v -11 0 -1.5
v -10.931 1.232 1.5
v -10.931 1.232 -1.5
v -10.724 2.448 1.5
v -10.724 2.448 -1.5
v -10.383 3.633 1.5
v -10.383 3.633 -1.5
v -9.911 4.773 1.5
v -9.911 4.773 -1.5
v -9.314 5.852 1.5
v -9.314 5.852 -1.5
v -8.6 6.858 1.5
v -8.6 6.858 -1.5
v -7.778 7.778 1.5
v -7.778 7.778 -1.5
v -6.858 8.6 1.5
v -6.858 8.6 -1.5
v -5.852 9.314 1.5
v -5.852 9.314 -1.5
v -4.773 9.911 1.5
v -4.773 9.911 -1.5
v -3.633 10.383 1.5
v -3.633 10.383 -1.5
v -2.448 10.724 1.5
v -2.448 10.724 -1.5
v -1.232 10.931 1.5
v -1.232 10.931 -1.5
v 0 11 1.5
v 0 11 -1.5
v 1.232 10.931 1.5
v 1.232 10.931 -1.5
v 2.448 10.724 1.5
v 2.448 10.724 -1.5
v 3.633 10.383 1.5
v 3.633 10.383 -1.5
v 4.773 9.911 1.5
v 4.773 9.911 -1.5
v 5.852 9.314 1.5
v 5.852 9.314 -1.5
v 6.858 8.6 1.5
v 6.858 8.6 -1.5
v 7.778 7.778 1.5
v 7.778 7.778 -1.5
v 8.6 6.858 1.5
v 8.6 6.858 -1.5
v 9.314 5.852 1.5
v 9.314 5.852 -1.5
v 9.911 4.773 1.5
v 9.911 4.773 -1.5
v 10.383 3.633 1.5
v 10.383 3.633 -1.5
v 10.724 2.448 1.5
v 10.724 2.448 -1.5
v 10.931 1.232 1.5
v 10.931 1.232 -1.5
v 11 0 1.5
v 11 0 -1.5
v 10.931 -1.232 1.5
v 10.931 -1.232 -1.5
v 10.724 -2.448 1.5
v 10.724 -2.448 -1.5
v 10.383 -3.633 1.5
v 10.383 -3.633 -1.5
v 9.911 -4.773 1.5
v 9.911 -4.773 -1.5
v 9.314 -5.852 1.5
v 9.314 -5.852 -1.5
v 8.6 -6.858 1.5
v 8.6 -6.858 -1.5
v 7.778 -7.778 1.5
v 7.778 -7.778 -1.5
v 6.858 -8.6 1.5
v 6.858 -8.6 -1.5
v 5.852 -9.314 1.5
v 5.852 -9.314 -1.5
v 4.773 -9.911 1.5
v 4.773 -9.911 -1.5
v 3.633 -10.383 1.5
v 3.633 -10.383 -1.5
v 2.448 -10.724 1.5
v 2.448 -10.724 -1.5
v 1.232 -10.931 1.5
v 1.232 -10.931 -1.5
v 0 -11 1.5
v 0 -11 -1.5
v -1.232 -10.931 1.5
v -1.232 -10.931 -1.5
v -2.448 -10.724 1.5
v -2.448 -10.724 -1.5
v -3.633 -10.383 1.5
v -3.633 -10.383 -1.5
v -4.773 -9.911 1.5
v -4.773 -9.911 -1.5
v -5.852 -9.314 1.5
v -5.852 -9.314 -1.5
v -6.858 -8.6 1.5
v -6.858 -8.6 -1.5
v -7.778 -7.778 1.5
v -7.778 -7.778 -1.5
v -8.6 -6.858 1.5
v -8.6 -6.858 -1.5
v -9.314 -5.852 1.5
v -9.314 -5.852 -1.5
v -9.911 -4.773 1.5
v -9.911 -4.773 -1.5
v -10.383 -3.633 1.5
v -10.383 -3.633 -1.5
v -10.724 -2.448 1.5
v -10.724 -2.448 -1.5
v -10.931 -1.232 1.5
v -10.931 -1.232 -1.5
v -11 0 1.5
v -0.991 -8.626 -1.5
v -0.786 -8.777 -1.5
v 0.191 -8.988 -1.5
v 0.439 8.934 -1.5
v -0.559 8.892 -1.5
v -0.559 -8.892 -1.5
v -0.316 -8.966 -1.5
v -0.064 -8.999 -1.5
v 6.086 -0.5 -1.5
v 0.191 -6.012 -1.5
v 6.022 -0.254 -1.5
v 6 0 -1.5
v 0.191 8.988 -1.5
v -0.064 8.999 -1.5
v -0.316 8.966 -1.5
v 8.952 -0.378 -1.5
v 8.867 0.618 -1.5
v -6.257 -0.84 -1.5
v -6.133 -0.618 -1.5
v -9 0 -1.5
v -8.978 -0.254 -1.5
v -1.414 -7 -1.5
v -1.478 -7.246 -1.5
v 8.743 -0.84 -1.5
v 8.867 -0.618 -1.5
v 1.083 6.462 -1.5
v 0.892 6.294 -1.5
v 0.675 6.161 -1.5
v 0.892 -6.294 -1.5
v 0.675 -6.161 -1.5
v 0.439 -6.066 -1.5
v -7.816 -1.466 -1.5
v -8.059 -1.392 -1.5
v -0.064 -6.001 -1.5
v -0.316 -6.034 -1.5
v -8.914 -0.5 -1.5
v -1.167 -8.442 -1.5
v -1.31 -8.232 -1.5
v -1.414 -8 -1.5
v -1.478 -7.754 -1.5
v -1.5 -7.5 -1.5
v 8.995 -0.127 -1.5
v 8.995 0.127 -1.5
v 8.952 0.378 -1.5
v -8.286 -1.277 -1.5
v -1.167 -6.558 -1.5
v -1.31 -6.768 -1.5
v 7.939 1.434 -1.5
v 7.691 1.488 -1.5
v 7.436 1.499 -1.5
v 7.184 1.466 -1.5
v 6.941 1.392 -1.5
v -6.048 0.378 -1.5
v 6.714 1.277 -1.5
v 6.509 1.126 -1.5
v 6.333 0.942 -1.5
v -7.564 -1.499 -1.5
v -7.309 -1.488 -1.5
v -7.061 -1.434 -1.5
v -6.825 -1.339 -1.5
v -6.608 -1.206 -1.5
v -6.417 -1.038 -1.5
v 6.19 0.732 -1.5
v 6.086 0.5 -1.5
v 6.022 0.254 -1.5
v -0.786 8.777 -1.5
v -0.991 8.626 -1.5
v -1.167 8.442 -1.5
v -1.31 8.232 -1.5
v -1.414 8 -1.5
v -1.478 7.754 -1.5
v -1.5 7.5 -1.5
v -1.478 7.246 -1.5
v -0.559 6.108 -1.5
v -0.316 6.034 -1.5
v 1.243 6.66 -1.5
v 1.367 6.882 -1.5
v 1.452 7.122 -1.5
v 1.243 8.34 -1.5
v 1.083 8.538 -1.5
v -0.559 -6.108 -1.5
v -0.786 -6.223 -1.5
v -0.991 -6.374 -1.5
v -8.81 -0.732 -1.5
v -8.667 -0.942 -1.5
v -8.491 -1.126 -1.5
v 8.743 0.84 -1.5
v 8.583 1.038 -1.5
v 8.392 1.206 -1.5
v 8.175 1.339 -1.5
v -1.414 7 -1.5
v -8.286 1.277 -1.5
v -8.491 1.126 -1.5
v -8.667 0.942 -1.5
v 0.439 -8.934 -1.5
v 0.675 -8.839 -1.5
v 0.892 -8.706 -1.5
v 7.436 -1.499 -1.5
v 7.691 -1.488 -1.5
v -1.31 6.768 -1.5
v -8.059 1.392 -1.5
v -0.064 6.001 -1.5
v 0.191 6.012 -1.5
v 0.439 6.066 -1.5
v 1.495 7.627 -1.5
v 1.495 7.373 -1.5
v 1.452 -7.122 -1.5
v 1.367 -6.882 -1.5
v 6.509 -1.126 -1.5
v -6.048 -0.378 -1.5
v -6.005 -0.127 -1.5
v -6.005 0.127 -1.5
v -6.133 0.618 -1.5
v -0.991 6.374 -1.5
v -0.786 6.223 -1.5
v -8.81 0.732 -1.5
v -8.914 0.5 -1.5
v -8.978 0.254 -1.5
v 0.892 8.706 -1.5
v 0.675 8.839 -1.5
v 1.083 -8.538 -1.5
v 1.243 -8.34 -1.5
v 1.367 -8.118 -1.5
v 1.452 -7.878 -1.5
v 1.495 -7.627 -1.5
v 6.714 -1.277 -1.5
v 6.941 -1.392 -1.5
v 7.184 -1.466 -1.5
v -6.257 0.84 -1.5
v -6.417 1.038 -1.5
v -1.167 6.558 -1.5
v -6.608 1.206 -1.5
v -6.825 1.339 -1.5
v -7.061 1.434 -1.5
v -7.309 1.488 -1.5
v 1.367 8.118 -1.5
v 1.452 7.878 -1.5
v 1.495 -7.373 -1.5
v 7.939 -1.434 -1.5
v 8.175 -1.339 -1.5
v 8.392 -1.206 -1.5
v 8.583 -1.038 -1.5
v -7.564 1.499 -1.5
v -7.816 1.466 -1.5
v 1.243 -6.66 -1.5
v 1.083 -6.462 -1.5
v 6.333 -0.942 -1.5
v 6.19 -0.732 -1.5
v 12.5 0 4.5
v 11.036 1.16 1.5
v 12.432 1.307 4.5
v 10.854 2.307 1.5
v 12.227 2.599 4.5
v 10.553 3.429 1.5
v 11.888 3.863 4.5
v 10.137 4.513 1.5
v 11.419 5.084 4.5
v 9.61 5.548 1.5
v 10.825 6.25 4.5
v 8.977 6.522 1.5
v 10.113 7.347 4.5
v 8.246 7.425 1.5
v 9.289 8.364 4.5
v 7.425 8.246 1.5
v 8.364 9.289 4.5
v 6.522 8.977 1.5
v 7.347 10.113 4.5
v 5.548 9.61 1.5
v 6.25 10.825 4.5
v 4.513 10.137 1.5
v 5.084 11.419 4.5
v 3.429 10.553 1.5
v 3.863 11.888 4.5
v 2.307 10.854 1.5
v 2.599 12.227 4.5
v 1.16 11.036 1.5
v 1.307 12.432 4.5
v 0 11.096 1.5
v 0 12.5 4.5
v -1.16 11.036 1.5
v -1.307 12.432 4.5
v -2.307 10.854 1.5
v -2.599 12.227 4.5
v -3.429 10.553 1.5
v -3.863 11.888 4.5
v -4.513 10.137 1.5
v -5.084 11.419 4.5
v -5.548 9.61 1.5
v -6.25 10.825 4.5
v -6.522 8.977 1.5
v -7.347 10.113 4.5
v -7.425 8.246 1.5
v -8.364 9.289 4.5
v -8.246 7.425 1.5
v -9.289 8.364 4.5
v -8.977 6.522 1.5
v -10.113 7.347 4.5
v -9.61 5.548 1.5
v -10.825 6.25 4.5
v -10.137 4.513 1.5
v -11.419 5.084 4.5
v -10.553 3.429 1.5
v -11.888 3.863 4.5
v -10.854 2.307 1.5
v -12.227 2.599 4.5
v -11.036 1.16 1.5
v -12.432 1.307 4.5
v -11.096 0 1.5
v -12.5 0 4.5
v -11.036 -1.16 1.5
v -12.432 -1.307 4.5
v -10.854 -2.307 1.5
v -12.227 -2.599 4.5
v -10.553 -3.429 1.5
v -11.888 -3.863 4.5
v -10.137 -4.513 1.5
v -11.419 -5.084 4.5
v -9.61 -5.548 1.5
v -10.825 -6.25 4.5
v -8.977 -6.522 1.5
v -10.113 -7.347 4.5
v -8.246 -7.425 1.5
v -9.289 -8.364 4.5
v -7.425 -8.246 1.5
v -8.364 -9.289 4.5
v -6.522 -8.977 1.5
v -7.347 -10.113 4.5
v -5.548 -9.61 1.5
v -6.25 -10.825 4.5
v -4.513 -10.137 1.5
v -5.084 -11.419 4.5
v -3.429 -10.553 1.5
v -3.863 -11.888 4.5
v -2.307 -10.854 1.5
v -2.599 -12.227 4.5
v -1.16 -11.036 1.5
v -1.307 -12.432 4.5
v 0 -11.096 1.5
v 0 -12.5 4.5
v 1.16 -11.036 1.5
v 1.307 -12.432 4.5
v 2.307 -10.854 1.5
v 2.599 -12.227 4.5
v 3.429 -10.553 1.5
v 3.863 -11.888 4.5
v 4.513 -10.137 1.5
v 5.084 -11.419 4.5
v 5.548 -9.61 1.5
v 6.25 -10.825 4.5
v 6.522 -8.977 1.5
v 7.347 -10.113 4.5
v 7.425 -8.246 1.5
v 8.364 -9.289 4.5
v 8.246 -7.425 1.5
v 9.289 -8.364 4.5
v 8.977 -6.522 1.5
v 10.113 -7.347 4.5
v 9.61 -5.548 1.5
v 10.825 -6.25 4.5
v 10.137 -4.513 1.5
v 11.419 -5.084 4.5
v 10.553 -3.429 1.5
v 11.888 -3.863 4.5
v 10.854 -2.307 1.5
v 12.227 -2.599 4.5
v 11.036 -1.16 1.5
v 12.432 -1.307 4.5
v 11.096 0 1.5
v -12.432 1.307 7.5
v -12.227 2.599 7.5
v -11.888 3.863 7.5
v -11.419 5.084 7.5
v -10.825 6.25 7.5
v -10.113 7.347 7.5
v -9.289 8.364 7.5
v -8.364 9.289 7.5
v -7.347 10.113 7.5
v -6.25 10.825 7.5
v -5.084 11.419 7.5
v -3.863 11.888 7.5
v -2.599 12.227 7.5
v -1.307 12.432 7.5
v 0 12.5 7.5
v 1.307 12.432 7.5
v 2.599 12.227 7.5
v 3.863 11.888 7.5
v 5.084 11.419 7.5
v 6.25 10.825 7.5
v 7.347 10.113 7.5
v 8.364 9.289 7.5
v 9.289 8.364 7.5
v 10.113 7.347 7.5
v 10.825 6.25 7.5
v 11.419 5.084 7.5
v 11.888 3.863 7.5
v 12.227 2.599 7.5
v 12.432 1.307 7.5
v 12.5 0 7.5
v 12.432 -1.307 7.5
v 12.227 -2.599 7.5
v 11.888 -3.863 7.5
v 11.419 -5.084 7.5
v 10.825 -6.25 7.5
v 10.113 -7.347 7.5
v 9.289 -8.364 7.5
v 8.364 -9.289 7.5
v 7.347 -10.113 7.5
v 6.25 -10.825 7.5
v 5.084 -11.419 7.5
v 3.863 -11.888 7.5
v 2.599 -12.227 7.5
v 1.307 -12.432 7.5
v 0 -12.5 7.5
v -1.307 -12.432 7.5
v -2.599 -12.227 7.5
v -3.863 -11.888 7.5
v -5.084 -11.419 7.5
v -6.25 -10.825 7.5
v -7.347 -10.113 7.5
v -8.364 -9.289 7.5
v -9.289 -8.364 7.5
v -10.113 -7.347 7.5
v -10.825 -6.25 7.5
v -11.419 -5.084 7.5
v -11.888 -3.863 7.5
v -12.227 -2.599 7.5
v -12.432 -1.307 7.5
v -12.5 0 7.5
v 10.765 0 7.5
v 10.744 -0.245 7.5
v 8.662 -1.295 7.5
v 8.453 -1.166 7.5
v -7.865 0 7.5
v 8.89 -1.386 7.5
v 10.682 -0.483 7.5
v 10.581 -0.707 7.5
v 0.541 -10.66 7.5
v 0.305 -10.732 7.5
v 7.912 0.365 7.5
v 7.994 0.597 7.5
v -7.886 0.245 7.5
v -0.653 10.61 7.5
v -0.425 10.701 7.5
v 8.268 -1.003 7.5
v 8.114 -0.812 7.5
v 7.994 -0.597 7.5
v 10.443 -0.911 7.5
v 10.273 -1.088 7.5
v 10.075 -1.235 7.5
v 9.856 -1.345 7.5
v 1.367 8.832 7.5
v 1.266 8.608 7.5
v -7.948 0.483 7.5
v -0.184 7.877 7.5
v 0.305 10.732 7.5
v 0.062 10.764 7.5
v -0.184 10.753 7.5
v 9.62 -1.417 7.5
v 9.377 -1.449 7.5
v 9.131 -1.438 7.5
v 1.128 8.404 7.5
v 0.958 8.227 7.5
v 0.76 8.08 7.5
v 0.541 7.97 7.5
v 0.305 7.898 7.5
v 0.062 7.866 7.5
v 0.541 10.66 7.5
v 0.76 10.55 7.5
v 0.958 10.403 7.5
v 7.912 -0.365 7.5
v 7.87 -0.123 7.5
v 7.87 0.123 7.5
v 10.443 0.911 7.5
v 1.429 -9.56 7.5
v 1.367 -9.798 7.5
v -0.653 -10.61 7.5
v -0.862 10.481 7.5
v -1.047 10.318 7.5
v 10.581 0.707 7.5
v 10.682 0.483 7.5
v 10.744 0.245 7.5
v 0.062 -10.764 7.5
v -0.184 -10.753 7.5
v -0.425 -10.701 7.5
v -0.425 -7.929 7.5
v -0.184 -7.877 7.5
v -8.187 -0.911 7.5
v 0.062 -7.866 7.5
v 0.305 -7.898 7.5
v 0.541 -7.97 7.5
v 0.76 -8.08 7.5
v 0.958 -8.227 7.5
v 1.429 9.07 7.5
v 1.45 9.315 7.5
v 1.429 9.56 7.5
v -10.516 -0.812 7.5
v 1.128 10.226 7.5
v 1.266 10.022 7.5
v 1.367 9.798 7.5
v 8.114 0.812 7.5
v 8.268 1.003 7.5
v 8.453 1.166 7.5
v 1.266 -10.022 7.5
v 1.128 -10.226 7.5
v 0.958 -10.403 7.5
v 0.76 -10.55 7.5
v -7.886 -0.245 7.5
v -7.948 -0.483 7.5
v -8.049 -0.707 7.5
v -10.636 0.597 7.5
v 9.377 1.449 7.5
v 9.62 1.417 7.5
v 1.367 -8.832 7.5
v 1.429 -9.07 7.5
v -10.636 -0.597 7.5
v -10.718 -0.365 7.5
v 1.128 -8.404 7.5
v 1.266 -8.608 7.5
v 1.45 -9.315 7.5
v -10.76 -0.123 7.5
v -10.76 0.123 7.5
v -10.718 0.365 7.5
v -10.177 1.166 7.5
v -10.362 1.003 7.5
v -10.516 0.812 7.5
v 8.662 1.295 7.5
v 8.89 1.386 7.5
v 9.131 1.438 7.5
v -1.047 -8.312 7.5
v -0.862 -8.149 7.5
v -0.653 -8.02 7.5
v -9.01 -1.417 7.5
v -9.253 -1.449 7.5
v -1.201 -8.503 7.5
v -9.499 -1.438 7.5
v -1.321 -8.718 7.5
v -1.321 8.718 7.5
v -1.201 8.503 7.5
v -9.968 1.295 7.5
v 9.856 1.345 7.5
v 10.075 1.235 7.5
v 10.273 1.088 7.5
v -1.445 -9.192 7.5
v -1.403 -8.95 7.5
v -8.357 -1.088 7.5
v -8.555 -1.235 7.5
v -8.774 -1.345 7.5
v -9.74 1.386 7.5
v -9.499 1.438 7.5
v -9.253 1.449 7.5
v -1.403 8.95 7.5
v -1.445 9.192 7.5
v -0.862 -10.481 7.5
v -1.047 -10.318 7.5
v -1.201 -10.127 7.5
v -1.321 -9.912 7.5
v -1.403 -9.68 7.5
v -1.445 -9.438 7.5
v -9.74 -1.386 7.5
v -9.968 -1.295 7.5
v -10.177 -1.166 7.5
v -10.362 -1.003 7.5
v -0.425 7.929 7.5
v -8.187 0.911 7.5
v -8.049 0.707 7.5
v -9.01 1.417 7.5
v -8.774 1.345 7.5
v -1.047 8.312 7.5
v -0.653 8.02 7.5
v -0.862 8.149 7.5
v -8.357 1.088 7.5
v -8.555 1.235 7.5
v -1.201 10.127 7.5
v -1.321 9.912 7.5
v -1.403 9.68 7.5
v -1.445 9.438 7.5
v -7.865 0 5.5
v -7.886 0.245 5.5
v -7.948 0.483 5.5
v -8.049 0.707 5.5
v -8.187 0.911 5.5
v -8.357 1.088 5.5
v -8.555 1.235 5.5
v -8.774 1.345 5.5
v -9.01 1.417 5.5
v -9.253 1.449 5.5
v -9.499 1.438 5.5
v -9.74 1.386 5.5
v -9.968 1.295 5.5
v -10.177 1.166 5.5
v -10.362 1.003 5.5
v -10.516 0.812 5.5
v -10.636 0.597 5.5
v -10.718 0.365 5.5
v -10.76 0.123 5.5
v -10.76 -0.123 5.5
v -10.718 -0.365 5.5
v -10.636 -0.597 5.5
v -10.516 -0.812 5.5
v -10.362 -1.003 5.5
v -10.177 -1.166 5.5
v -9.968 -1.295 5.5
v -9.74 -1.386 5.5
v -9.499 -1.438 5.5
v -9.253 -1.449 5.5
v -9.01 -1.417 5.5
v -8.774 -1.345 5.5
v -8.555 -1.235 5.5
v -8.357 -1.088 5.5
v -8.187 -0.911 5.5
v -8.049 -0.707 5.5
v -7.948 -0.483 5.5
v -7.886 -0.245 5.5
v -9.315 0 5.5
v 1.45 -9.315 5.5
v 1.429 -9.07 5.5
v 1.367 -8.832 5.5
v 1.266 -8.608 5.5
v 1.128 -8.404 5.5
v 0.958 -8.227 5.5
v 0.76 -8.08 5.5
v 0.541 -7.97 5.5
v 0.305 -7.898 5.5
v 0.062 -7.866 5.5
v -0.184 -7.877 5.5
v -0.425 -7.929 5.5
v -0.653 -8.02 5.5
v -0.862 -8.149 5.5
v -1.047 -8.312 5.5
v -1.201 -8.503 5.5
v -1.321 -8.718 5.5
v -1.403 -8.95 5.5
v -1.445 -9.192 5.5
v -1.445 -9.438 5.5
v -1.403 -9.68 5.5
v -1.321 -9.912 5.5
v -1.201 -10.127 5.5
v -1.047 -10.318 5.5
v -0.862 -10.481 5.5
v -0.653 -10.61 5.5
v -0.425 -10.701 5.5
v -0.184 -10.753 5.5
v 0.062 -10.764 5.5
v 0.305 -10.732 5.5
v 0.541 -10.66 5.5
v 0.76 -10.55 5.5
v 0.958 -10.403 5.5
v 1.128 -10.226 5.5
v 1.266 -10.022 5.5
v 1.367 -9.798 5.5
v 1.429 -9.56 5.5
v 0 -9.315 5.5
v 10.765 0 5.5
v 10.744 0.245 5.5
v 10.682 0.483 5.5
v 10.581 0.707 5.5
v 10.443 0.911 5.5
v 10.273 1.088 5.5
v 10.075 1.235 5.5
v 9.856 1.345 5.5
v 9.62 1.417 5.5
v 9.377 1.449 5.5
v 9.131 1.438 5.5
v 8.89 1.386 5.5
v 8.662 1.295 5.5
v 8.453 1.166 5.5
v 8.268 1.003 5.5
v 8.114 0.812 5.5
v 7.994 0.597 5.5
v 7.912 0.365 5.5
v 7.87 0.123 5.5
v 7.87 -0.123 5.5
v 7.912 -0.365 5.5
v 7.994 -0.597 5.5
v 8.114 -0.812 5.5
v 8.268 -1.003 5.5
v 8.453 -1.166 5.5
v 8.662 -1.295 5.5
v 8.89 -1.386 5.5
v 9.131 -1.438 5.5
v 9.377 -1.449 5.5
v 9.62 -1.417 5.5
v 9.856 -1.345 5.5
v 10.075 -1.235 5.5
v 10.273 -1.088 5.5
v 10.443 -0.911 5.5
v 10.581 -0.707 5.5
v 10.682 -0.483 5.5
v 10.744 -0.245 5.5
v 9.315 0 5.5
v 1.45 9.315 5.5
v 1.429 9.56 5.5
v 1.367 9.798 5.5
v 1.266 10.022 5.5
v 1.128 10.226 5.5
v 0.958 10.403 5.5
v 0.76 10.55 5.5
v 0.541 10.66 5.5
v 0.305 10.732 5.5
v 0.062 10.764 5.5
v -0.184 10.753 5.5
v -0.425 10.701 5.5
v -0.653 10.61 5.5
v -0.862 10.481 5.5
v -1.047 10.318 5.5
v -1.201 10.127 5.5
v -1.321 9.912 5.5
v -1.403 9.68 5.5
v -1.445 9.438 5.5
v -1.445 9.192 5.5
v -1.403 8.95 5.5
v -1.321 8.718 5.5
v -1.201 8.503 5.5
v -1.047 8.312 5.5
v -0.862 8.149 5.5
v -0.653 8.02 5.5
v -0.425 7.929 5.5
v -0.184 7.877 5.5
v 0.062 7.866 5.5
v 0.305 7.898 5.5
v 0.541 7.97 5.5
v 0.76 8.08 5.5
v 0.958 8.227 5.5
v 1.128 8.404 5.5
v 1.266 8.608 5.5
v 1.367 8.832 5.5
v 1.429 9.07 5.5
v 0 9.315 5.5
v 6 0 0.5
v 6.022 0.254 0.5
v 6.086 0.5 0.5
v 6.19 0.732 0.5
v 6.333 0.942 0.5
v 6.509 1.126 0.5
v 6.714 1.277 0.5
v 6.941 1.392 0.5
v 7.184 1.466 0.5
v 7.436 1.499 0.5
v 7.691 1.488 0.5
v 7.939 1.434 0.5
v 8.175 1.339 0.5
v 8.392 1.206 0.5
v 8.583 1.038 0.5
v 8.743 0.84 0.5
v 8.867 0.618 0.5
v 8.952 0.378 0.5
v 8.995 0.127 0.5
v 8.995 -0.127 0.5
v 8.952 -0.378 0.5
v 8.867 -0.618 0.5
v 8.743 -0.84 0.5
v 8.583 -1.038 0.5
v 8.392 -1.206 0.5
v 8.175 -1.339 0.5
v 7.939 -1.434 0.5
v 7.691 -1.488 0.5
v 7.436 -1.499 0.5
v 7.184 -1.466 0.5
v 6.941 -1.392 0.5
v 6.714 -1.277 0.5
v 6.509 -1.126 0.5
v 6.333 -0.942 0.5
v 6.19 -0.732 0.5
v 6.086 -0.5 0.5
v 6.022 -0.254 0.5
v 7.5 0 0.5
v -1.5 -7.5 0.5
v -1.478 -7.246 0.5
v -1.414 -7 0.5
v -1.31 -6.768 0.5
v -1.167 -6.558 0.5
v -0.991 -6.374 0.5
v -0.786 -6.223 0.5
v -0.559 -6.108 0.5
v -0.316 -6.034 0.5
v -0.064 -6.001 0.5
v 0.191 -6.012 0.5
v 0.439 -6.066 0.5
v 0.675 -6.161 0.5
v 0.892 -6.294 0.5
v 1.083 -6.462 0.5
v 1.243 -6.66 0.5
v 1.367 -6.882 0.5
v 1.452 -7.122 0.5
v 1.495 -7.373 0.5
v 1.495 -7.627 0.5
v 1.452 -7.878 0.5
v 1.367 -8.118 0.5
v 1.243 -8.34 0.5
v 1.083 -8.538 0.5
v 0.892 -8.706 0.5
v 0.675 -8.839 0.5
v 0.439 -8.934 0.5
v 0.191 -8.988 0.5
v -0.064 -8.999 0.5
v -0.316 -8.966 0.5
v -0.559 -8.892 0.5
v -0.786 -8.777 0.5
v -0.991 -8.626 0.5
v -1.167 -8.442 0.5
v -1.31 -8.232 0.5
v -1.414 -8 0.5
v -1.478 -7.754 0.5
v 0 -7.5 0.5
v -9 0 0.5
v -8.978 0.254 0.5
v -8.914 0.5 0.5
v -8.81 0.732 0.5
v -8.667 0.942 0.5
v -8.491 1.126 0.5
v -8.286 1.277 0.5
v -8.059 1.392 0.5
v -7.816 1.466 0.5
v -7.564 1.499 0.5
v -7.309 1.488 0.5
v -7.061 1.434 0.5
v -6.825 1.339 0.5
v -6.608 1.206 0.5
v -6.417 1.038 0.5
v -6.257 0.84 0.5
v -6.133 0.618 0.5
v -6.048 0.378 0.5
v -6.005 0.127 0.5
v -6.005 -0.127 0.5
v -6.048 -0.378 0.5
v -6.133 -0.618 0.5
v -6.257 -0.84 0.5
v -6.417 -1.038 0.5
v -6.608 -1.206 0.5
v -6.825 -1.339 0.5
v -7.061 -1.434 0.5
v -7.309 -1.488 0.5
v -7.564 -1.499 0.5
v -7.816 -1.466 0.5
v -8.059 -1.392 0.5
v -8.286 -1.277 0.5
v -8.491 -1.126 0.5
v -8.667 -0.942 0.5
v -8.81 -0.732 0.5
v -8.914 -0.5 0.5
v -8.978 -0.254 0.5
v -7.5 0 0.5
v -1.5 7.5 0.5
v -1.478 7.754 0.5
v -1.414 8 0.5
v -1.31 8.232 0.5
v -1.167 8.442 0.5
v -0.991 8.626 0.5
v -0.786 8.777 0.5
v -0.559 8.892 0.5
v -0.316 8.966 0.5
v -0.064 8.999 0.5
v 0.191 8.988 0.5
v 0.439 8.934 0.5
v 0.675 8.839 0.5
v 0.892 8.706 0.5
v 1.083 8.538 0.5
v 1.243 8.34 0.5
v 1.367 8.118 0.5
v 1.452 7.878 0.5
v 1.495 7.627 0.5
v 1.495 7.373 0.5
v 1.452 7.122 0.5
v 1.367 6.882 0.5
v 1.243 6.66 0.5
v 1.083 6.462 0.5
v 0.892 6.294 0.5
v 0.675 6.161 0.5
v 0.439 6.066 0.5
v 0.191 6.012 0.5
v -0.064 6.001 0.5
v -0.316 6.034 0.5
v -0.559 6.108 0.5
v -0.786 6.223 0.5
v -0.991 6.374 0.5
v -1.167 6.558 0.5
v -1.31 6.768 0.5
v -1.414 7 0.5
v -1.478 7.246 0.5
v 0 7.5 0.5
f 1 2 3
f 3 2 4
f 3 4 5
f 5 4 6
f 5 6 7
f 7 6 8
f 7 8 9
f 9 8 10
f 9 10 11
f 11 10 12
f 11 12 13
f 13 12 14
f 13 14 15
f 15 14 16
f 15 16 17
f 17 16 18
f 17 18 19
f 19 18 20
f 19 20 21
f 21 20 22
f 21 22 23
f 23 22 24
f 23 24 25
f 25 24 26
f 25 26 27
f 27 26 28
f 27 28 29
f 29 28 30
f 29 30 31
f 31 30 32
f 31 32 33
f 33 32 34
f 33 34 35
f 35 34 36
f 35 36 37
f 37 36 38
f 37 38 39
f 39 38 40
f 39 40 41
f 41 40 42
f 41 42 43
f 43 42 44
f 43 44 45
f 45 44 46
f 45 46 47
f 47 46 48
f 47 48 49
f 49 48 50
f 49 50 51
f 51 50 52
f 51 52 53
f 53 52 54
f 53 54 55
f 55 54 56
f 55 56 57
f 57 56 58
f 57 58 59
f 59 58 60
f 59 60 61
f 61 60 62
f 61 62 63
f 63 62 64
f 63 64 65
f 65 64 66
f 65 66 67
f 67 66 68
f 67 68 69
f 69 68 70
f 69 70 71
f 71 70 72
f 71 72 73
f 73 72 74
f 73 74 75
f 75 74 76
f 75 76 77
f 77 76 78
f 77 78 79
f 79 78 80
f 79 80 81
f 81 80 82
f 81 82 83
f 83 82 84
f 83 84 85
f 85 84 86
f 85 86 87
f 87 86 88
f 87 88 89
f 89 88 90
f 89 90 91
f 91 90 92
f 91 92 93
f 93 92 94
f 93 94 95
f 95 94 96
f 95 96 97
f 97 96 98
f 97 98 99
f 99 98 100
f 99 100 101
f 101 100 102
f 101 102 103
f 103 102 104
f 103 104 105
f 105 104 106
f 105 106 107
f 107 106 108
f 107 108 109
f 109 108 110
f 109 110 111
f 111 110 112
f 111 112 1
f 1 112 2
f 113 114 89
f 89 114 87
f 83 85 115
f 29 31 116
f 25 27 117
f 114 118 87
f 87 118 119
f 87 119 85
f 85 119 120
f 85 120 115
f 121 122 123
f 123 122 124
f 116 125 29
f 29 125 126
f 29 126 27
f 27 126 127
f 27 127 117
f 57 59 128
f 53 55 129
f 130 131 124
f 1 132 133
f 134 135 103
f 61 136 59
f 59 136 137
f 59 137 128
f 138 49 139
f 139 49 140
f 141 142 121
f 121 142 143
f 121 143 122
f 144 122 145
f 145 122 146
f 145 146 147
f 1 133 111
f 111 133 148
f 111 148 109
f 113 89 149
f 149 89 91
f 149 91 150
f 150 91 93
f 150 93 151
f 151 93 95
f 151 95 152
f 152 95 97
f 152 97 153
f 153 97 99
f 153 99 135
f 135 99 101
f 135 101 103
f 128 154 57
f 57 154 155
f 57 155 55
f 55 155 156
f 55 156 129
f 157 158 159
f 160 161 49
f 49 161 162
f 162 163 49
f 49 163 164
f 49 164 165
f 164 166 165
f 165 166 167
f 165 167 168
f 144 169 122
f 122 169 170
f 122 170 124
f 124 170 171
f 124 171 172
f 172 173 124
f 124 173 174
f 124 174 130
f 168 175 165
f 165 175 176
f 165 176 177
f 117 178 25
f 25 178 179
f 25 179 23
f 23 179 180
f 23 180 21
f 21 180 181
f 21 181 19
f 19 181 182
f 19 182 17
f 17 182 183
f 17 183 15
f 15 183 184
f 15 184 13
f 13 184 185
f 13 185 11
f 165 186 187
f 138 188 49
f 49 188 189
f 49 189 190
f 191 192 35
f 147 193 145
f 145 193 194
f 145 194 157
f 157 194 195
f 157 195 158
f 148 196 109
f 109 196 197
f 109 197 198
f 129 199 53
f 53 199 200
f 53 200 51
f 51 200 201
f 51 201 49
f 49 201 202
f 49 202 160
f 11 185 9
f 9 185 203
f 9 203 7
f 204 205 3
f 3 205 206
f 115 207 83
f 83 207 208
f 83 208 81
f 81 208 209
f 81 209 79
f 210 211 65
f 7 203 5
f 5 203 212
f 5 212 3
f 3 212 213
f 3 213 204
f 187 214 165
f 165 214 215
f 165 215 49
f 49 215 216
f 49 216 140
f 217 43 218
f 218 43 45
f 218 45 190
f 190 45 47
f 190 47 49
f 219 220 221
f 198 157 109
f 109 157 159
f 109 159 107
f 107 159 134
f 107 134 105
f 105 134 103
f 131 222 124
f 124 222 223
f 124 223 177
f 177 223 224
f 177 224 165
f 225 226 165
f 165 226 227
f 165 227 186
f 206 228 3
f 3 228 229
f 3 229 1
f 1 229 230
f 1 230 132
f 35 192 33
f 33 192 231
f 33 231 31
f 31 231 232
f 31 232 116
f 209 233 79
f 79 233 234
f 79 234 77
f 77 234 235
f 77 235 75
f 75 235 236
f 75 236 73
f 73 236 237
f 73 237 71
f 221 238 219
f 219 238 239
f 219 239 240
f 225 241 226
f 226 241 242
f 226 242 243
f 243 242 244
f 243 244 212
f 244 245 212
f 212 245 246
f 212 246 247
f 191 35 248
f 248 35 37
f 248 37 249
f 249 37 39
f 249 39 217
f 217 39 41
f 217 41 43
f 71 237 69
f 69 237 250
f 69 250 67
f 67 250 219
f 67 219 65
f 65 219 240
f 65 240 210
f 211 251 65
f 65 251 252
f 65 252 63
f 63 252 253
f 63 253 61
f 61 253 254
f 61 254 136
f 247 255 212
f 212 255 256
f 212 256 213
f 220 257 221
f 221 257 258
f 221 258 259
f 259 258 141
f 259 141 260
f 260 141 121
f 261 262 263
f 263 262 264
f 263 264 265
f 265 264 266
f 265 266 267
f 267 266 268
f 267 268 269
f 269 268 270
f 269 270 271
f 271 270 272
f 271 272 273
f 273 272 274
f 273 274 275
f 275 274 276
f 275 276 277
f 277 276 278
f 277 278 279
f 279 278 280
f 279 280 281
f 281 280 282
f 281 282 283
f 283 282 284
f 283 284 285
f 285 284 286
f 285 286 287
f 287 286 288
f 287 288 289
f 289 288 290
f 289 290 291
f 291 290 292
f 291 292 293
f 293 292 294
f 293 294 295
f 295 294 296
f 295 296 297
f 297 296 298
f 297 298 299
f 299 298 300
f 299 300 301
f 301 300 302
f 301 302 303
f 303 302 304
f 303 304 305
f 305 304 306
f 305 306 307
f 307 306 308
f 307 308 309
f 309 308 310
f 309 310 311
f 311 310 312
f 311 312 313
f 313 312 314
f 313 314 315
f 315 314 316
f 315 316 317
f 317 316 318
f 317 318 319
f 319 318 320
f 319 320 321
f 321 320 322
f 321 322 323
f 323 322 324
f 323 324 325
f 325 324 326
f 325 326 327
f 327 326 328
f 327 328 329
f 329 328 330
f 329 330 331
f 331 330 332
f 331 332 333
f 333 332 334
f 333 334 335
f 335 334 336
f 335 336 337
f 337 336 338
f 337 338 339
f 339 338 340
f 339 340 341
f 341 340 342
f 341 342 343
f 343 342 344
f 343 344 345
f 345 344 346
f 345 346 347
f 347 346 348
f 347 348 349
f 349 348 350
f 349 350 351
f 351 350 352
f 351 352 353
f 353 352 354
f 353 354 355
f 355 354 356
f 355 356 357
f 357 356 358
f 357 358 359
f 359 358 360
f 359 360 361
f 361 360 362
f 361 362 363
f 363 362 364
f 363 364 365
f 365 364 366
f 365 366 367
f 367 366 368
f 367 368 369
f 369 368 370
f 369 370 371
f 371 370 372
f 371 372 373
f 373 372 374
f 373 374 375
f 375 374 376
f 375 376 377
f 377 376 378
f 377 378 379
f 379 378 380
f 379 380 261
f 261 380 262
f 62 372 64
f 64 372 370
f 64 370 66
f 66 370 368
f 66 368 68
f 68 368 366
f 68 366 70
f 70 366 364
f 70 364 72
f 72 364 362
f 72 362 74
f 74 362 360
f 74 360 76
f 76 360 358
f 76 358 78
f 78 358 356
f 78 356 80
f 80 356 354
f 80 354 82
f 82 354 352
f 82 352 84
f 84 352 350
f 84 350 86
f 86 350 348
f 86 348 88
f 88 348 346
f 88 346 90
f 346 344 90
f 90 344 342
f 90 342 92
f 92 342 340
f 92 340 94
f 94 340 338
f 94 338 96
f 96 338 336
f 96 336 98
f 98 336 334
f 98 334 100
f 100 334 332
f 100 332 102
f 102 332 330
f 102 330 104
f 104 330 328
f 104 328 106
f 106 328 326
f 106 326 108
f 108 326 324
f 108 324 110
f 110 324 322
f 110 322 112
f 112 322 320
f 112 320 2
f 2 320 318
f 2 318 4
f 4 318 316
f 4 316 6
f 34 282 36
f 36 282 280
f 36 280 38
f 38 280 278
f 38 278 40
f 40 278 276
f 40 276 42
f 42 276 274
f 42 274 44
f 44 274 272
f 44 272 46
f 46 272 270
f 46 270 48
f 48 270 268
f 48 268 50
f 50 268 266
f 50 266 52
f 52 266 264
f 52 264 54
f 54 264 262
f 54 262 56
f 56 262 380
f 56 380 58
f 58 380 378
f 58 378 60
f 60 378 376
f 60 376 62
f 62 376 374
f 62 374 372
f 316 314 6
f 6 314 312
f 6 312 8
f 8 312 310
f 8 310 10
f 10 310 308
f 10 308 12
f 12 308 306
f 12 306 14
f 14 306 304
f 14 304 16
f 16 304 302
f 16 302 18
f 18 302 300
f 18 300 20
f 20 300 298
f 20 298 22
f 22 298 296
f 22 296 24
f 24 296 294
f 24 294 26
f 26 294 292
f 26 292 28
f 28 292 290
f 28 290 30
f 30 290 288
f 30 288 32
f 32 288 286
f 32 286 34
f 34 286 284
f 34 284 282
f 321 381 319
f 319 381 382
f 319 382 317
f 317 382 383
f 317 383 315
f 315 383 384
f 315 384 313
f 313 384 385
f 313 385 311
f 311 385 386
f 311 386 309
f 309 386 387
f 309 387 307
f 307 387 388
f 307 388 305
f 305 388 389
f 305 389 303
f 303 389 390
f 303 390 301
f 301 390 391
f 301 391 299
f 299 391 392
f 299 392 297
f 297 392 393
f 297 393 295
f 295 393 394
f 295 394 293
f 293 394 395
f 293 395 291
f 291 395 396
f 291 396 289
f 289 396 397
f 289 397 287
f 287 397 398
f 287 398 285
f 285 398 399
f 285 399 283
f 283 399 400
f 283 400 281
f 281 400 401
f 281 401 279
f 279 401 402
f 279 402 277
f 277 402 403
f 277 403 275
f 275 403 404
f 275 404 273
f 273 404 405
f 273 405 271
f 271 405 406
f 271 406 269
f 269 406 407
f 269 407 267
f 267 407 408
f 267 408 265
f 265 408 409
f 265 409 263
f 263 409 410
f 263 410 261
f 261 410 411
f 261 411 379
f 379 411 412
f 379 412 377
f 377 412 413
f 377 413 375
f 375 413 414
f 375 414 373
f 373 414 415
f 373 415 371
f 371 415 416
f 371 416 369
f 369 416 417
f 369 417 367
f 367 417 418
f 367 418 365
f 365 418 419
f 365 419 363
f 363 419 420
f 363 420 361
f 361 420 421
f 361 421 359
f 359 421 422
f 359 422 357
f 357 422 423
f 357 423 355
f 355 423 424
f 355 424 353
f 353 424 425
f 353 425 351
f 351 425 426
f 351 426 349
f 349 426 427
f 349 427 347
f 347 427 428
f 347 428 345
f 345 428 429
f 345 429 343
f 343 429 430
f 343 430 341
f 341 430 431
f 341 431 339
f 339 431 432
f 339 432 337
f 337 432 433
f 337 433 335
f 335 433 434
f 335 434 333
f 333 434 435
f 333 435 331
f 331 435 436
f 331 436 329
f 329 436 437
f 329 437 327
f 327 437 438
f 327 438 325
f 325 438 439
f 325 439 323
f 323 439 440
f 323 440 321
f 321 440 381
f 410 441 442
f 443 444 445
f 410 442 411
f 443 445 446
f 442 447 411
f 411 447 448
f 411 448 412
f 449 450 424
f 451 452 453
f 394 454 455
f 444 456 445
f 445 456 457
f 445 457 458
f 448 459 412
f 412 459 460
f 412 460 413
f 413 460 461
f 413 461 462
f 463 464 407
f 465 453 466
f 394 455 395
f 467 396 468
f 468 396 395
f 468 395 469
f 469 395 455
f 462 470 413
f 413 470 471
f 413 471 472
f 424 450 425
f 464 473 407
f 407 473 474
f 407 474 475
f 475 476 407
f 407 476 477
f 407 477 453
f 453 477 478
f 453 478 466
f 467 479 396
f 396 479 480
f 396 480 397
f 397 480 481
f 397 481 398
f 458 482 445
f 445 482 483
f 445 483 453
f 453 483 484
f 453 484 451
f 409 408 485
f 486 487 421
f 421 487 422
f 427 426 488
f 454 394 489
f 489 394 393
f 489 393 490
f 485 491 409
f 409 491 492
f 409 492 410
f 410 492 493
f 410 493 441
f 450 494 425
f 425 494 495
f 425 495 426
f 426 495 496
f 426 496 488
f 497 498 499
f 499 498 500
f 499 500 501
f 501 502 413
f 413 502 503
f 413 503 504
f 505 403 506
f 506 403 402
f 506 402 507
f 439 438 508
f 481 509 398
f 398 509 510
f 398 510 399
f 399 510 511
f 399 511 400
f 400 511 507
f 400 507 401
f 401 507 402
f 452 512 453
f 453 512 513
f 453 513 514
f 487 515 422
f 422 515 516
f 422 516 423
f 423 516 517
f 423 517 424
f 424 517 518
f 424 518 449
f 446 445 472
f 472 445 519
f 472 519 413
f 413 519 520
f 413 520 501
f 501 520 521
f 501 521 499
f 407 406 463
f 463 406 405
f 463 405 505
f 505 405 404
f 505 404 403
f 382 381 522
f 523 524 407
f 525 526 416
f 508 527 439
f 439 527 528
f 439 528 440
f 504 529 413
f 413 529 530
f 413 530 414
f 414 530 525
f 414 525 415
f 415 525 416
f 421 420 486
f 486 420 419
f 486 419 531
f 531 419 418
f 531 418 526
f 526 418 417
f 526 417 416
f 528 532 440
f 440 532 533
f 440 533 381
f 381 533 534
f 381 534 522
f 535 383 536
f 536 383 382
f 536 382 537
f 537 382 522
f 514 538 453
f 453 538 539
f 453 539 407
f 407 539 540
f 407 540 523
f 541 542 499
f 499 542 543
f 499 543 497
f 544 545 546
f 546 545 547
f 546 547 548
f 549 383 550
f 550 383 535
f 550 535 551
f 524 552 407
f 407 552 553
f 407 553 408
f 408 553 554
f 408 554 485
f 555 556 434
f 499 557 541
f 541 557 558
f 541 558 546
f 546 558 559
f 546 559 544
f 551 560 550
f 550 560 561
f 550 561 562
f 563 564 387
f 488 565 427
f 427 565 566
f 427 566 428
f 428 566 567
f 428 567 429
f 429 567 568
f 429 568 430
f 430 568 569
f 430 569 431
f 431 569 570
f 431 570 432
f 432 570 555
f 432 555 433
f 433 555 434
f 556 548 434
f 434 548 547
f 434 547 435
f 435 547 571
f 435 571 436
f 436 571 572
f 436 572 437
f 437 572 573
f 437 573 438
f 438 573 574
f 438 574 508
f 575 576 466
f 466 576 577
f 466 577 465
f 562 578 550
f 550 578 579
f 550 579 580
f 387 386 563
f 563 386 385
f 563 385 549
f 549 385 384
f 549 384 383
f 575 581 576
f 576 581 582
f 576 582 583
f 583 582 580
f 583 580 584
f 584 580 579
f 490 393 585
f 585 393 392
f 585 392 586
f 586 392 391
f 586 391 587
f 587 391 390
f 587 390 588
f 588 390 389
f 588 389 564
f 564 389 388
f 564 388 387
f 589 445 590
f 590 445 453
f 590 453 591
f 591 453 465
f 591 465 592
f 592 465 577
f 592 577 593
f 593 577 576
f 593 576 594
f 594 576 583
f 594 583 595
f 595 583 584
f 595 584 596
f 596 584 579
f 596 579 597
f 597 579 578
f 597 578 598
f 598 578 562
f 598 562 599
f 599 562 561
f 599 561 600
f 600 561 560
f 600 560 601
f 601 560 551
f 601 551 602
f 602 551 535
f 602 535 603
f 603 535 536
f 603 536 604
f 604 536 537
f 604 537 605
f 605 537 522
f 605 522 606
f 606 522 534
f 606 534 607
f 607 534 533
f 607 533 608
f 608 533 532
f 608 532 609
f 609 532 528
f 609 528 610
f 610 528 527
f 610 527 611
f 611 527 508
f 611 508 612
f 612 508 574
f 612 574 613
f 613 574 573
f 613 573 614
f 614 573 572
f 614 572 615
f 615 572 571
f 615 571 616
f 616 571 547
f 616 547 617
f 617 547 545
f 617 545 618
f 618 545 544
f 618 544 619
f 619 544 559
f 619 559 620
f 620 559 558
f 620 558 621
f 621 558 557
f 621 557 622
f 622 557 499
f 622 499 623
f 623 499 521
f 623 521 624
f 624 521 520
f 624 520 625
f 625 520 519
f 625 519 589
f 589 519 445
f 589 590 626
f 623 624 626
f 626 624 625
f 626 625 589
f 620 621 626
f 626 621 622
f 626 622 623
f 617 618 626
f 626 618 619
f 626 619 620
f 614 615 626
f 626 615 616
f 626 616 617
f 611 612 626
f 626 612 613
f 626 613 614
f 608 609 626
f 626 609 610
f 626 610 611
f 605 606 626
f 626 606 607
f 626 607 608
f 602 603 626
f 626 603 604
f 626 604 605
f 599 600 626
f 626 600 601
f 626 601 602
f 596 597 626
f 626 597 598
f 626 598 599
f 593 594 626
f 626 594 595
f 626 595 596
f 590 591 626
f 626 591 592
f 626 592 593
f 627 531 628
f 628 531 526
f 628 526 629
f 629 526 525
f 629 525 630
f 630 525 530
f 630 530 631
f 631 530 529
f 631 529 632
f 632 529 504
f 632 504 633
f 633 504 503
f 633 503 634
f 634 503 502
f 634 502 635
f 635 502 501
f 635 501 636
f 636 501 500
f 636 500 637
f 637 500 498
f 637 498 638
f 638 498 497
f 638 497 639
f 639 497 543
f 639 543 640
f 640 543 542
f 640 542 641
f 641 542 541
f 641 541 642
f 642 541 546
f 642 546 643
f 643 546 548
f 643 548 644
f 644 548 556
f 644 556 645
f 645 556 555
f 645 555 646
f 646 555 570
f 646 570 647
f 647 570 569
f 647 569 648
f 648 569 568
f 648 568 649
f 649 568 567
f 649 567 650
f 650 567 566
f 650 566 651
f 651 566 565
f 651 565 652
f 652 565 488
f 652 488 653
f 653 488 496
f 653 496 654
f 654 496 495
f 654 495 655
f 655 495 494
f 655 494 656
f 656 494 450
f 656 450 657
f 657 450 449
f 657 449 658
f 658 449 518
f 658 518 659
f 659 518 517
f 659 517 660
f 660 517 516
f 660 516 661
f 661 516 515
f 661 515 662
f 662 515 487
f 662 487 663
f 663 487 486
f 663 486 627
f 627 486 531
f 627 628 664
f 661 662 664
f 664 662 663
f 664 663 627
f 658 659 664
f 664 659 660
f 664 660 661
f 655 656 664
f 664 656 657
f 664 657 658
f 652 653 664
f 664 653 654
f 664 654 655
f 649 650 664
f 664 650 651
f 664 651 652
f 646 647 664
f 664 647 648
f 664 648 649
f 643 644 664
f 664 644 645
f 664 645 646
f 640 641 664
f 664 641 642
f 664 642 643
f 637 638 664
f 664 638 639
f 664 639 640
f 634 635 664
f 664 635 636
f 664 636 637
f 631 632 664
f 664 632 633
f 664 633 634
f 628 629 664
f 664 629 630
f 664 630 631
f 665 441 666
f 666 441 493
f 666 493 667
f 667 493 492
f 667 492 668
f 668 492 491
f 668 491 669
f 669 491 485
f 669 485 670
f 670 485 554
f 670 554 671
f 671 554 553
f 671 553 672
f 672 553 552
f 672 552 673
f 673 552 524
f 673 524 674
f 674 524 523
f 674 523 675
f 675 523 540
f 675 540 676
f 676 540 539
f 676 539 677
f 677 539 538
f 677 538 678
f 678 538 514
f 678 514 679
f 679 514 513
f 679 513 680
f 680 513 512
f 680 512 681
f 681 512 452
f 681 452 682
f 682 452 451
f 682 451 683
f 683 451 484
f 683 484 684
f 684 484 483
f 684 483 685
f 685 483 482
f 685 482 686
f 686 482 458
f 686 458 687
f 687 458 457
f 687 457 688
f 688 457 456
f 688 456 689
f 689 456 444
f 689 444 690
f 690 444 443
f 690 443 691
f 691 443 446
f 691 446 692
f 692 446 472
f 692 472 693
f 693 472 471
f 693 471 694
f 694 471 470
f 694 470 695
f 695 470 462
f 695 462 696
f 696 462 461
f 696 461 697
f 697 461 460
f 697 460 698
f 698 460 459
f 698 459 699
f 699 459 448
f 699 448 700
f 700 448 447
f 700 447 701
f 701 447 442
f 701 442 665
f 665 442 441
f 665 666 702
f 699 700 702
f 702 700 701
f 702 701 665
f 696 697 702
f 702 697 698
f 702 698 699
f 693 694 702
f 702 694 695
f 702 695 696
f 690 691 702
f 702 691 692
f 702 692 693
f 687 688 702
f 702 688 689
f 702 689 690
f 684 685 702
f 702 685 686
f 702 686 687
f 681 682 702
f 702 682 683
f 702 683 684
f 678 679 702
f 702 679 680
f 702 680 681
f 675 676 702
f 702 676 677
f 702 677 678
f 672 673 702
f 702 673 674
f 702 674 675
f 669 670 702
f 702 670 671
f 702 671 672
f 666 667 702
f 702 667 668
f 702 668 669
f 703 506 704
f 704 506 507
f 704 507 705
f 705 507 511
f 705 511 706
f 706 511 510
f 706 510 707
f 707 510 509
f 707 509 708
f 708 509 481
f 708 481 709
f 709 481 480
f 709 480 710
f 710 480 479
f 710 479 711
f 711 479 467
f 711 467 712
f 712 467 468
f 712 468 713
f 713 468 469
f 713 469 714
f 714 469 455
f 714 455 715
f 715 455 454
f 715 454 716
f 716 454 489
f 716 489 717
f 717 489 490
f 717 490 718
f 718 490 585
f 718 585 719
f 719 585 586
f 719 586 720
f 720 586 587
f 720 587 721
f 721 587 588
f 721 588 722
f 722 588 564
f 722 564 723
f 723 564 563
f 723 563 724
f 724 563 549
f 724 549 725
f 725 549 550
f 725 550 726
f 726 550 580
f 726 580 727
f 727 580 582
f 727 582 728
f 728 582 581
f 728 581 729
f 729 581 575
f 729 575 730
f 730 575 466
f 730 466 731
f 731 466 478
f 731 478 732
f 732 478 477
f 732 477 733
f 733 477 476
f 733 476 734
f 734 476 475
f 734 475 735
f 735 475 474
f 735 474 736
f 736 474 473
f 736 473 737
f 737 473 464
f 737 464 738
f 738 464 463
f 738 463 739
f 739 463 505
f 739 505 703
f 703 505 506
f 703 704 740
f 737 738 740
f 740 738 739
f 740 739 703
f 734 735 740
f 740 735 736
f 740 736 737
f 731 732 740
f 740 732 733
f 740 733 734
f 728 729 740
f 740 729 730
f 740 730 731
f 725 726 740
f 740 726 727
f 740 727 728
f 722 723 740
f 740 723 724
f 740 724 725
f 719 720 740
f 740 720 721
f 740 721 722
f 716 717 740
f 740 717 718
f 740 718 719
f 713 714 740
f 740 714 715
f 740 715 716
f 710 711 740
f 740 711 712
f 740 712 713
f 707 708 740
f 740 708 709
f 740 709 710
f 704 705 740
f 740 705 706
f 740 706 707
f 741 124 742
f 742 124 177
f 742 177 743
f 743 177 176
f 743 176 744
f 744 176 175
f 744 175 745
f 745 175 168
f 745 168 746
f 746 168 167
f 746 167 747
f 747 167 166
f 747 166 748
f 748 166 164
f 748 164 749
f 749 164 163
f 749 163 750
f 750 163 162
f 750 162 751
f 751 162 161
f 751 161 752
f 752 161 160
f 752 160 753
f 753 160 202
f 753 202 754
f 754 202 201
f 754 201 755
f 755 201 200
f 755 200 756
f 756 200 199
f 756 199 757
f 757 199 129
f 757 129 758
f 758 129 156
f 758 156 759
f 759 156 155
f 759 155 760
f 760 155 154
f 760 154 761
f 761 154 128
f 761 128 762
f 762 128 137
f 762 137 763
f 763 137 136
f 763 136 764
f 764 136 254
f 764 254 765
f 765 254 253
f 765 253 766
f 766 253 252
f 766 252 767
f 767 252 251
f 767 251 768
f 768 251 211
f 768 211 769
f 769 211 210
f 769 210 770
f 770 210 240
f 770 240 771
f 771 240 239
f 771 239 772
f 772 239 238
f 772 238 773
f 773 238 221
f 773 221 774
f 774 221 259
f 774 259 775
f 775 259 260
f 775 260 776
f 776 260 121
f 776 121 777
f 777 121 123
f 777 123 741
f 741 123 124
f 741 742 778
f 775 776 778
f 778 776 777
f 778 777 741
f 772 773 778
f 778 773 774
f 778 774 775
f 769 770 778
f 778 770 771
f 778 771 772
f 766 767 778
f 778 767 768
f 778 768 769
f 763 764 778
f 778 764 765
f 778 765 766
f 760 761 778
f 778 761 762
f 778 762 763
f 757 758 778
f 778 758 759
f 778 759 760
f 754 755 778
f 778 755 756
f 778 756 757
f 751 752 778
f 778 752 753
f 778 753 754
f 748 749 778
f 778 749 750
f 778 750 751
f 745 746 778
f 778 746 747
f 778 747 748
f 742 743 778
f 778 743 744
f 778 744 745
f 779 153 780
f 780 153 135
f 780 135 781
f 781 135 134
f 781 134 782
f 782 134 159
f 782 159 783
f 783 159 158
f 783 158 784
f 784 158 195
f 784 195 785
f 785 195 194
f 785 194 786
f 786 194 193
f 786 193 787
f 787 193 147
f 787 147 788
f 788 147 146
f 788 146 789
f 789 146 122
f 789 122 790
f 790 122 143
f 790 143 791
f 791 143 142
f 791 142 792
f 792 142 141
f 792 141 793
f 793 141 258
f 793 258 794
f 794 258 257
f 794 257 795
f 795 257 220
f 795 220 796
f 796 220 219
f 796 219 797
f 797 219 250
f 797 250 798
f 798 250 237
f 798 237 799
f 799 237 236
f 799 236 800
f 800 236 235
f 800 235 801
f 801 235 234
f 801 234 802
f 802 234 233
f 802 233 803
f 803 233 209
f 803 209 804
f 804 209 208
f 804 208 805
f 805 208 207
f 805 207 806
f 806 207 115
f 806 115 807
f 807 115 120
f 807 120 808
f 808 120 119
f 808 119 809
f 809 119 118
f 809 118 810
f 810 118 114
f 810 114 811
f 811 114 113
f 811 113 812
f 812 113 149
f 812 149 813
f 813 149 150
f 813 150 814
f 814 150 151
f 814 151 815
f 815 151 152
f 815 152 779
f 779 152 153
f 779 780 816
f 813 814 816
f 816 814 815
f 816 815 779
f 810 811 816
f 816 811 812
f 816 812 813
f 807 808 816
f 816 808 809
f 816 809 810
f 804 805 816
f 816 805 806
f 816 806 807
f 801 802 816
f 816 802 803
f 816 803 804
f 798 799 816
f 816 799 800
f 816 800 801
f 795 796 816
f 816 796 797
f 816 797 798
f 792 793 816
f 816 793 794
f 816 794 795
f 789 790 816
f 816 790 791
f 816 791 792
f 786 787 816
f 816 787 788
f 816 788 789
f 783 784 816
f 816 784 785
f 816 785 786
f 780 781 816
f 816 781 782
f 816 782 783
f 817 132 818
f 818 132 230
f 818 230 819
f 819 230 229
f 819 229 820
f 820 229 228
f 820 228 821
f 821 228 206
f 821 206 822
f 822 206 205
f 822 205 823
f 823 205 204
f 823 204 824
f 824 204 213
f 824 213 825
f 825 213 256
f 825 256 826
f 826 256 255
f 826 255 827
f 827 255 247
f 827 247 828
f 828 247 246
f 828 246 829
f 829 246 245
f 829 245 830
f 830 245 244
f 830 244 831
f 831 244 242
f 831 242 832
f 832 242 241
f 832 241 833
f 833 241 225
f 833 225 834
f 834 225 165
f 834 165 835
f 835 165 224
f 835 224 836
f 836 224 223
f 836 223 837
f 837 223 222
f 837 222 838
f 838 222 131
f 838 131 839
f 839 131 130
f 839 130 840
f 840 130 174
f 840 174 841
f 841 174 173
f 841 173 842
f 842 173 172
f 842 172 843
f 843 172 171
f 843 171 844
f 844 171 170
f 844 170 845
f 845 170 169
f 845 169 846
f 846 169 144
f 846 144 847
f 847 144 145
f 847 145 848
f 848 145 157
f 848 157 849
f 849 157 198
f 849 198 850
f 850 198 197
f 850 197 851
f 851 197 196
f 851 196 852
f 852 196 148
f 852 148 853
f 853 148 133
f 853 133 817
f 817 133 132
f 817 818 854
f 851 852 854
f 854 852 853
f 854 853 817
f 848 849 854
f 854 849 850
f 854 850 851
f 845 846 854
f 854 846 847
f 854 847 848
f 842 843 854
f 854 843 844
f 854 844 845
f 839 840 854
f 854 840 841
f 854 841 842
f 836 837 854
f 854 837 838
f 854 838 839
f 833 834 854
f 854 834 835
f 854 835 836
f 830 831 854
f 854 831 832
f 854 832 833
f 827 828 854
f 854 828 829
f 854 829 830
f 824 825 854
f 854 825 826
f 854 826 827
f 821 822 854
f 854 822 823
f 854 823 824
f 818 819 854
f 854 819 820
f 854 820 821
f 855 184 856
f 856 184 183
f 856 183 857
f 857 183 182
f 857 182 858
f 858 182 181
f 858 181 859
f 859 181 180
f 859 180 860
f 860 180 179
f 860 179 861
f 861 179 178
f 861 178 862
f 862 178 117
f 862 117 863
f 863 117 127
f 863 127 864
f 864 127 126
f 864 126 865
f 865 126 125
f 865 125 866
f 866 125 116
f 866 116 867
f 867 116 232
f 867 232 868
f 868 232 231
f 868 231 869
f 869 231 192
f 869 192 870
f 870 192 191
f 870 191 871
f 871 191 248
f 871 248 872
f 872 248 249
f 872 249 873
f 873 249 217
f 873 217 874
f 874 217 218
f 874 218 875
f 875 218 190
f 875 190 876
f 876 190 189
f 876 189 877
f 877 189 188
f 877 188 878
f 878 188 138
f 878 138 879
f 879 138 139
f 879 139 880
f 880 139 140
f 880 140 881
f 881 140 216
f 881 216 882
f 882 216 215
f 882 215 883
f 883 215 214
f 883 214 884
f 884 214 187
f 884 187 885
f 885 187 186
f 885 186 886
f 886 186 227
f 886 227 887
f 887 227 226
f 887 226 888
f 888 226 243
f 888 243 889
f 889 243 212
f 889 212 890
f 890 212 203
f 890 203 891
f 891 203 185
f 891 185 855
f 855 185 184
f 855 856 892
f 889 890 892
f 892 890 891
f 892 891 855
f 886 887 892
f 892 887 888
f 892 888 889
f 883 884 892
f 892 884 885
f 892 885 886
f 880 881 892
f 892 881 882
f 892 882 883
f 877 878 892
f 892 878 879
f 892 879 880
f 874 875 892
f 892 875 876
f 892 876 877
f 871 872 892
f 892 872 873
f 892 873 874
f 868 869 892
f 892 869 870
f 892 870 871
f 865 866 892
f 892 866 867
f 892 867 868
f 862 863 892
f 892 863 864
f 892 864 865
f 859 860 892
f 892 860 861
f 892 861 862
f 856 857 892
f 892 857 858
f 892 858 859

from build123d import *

# Parameters (mm, degrees)
SKETCH1_R           = 11
BOSS_EXTRUDE1_DEPTH = 1.5
SKETCH4_R           = 12.5
BOSS_EXTRUDE2_DEPTH = 3
SKETCH5_R           = 1.45
CUT_EXTRUDE1_DEPTH  = 2
SKETCH6_R           = 1.5
CUT_EXTRUDE2_DEPTH  = 2


with BuildPart() as part:
    # Sketch1 → Boss-Extrude1 (new, symmetric)
    with BuildSketch(Plane.XY):
        Circle(SKETCH1_R)
    extrude(amount=BOSS_EXTRUDE1_DEPTH, both=True)

    # Sketch2 → Revolve1 (revolve)
    with BuildSketch(Plane(origin=(0, 0, 0), x_dir=(0, 0, -1), z_dir=(1, 0, 0)), mode=Mode.PRIVATE) as revolve1_sk:
        Polygon((-4.5, 0), (-4.5, 12.5), (-1.5, 11.096489402), (-1.5, 0), align=None)
    revolve(revolve1_sk.sketch.rotate(Axis((0, 0, 0), (0, 0, 1)), 90), axis=Axis((0, 0, 0), (0, 0, 1)))

    # Sketch4 → Boss-Extrude2 (add)
    with BuildSketch(Plane.XY.offset(4.5)):
        Circle(SKETCH4_R)
    extrude(amount=BOSS_EXTRUDE2_DEPTH)

    # Sketch5 → Cut-Extrude1 (cut)
    with BuildSketch(Plane.XY.offset(7.5)):
        with Locations((0, 9.315)):
            Circle(SKETCH5_R)
        with Locations((9.315, 0)):
            Circle(SKETCH5_R)
        with Locations((0, -9.315)):
            Circle(SKETCH5_R)
        with Locations((-9.315, 0)):
            Circle(SKETCH5_R)
    extrude(amount=-CUT_EXTRUDE1_DEPTH, mode=Mode.SUBTRACT)

    # Sketch6 → Cut-Extrude2 (cut)
    with BuildSketch(Plane(origin=(0, 0, -1.5), x_dir=(-1, 0, 0), z_dir=(0, 0, -1))):
        with Locations((0, 7.5)):
            Circle(SKETCH6_R)
        with Locations((7.5, 0)):
            Circle(SKETCH6_R)
        with Locations((0, -7.5)):
            Circle(SKETCH6_R)
        with Locations((-7.5, 0)):
            Circle(SKETCH6_R)
    extrude(amount=-CUT_EXTRUDE2_DEPTH, mode=Mode.SUBTRACT)


solid = part.part
